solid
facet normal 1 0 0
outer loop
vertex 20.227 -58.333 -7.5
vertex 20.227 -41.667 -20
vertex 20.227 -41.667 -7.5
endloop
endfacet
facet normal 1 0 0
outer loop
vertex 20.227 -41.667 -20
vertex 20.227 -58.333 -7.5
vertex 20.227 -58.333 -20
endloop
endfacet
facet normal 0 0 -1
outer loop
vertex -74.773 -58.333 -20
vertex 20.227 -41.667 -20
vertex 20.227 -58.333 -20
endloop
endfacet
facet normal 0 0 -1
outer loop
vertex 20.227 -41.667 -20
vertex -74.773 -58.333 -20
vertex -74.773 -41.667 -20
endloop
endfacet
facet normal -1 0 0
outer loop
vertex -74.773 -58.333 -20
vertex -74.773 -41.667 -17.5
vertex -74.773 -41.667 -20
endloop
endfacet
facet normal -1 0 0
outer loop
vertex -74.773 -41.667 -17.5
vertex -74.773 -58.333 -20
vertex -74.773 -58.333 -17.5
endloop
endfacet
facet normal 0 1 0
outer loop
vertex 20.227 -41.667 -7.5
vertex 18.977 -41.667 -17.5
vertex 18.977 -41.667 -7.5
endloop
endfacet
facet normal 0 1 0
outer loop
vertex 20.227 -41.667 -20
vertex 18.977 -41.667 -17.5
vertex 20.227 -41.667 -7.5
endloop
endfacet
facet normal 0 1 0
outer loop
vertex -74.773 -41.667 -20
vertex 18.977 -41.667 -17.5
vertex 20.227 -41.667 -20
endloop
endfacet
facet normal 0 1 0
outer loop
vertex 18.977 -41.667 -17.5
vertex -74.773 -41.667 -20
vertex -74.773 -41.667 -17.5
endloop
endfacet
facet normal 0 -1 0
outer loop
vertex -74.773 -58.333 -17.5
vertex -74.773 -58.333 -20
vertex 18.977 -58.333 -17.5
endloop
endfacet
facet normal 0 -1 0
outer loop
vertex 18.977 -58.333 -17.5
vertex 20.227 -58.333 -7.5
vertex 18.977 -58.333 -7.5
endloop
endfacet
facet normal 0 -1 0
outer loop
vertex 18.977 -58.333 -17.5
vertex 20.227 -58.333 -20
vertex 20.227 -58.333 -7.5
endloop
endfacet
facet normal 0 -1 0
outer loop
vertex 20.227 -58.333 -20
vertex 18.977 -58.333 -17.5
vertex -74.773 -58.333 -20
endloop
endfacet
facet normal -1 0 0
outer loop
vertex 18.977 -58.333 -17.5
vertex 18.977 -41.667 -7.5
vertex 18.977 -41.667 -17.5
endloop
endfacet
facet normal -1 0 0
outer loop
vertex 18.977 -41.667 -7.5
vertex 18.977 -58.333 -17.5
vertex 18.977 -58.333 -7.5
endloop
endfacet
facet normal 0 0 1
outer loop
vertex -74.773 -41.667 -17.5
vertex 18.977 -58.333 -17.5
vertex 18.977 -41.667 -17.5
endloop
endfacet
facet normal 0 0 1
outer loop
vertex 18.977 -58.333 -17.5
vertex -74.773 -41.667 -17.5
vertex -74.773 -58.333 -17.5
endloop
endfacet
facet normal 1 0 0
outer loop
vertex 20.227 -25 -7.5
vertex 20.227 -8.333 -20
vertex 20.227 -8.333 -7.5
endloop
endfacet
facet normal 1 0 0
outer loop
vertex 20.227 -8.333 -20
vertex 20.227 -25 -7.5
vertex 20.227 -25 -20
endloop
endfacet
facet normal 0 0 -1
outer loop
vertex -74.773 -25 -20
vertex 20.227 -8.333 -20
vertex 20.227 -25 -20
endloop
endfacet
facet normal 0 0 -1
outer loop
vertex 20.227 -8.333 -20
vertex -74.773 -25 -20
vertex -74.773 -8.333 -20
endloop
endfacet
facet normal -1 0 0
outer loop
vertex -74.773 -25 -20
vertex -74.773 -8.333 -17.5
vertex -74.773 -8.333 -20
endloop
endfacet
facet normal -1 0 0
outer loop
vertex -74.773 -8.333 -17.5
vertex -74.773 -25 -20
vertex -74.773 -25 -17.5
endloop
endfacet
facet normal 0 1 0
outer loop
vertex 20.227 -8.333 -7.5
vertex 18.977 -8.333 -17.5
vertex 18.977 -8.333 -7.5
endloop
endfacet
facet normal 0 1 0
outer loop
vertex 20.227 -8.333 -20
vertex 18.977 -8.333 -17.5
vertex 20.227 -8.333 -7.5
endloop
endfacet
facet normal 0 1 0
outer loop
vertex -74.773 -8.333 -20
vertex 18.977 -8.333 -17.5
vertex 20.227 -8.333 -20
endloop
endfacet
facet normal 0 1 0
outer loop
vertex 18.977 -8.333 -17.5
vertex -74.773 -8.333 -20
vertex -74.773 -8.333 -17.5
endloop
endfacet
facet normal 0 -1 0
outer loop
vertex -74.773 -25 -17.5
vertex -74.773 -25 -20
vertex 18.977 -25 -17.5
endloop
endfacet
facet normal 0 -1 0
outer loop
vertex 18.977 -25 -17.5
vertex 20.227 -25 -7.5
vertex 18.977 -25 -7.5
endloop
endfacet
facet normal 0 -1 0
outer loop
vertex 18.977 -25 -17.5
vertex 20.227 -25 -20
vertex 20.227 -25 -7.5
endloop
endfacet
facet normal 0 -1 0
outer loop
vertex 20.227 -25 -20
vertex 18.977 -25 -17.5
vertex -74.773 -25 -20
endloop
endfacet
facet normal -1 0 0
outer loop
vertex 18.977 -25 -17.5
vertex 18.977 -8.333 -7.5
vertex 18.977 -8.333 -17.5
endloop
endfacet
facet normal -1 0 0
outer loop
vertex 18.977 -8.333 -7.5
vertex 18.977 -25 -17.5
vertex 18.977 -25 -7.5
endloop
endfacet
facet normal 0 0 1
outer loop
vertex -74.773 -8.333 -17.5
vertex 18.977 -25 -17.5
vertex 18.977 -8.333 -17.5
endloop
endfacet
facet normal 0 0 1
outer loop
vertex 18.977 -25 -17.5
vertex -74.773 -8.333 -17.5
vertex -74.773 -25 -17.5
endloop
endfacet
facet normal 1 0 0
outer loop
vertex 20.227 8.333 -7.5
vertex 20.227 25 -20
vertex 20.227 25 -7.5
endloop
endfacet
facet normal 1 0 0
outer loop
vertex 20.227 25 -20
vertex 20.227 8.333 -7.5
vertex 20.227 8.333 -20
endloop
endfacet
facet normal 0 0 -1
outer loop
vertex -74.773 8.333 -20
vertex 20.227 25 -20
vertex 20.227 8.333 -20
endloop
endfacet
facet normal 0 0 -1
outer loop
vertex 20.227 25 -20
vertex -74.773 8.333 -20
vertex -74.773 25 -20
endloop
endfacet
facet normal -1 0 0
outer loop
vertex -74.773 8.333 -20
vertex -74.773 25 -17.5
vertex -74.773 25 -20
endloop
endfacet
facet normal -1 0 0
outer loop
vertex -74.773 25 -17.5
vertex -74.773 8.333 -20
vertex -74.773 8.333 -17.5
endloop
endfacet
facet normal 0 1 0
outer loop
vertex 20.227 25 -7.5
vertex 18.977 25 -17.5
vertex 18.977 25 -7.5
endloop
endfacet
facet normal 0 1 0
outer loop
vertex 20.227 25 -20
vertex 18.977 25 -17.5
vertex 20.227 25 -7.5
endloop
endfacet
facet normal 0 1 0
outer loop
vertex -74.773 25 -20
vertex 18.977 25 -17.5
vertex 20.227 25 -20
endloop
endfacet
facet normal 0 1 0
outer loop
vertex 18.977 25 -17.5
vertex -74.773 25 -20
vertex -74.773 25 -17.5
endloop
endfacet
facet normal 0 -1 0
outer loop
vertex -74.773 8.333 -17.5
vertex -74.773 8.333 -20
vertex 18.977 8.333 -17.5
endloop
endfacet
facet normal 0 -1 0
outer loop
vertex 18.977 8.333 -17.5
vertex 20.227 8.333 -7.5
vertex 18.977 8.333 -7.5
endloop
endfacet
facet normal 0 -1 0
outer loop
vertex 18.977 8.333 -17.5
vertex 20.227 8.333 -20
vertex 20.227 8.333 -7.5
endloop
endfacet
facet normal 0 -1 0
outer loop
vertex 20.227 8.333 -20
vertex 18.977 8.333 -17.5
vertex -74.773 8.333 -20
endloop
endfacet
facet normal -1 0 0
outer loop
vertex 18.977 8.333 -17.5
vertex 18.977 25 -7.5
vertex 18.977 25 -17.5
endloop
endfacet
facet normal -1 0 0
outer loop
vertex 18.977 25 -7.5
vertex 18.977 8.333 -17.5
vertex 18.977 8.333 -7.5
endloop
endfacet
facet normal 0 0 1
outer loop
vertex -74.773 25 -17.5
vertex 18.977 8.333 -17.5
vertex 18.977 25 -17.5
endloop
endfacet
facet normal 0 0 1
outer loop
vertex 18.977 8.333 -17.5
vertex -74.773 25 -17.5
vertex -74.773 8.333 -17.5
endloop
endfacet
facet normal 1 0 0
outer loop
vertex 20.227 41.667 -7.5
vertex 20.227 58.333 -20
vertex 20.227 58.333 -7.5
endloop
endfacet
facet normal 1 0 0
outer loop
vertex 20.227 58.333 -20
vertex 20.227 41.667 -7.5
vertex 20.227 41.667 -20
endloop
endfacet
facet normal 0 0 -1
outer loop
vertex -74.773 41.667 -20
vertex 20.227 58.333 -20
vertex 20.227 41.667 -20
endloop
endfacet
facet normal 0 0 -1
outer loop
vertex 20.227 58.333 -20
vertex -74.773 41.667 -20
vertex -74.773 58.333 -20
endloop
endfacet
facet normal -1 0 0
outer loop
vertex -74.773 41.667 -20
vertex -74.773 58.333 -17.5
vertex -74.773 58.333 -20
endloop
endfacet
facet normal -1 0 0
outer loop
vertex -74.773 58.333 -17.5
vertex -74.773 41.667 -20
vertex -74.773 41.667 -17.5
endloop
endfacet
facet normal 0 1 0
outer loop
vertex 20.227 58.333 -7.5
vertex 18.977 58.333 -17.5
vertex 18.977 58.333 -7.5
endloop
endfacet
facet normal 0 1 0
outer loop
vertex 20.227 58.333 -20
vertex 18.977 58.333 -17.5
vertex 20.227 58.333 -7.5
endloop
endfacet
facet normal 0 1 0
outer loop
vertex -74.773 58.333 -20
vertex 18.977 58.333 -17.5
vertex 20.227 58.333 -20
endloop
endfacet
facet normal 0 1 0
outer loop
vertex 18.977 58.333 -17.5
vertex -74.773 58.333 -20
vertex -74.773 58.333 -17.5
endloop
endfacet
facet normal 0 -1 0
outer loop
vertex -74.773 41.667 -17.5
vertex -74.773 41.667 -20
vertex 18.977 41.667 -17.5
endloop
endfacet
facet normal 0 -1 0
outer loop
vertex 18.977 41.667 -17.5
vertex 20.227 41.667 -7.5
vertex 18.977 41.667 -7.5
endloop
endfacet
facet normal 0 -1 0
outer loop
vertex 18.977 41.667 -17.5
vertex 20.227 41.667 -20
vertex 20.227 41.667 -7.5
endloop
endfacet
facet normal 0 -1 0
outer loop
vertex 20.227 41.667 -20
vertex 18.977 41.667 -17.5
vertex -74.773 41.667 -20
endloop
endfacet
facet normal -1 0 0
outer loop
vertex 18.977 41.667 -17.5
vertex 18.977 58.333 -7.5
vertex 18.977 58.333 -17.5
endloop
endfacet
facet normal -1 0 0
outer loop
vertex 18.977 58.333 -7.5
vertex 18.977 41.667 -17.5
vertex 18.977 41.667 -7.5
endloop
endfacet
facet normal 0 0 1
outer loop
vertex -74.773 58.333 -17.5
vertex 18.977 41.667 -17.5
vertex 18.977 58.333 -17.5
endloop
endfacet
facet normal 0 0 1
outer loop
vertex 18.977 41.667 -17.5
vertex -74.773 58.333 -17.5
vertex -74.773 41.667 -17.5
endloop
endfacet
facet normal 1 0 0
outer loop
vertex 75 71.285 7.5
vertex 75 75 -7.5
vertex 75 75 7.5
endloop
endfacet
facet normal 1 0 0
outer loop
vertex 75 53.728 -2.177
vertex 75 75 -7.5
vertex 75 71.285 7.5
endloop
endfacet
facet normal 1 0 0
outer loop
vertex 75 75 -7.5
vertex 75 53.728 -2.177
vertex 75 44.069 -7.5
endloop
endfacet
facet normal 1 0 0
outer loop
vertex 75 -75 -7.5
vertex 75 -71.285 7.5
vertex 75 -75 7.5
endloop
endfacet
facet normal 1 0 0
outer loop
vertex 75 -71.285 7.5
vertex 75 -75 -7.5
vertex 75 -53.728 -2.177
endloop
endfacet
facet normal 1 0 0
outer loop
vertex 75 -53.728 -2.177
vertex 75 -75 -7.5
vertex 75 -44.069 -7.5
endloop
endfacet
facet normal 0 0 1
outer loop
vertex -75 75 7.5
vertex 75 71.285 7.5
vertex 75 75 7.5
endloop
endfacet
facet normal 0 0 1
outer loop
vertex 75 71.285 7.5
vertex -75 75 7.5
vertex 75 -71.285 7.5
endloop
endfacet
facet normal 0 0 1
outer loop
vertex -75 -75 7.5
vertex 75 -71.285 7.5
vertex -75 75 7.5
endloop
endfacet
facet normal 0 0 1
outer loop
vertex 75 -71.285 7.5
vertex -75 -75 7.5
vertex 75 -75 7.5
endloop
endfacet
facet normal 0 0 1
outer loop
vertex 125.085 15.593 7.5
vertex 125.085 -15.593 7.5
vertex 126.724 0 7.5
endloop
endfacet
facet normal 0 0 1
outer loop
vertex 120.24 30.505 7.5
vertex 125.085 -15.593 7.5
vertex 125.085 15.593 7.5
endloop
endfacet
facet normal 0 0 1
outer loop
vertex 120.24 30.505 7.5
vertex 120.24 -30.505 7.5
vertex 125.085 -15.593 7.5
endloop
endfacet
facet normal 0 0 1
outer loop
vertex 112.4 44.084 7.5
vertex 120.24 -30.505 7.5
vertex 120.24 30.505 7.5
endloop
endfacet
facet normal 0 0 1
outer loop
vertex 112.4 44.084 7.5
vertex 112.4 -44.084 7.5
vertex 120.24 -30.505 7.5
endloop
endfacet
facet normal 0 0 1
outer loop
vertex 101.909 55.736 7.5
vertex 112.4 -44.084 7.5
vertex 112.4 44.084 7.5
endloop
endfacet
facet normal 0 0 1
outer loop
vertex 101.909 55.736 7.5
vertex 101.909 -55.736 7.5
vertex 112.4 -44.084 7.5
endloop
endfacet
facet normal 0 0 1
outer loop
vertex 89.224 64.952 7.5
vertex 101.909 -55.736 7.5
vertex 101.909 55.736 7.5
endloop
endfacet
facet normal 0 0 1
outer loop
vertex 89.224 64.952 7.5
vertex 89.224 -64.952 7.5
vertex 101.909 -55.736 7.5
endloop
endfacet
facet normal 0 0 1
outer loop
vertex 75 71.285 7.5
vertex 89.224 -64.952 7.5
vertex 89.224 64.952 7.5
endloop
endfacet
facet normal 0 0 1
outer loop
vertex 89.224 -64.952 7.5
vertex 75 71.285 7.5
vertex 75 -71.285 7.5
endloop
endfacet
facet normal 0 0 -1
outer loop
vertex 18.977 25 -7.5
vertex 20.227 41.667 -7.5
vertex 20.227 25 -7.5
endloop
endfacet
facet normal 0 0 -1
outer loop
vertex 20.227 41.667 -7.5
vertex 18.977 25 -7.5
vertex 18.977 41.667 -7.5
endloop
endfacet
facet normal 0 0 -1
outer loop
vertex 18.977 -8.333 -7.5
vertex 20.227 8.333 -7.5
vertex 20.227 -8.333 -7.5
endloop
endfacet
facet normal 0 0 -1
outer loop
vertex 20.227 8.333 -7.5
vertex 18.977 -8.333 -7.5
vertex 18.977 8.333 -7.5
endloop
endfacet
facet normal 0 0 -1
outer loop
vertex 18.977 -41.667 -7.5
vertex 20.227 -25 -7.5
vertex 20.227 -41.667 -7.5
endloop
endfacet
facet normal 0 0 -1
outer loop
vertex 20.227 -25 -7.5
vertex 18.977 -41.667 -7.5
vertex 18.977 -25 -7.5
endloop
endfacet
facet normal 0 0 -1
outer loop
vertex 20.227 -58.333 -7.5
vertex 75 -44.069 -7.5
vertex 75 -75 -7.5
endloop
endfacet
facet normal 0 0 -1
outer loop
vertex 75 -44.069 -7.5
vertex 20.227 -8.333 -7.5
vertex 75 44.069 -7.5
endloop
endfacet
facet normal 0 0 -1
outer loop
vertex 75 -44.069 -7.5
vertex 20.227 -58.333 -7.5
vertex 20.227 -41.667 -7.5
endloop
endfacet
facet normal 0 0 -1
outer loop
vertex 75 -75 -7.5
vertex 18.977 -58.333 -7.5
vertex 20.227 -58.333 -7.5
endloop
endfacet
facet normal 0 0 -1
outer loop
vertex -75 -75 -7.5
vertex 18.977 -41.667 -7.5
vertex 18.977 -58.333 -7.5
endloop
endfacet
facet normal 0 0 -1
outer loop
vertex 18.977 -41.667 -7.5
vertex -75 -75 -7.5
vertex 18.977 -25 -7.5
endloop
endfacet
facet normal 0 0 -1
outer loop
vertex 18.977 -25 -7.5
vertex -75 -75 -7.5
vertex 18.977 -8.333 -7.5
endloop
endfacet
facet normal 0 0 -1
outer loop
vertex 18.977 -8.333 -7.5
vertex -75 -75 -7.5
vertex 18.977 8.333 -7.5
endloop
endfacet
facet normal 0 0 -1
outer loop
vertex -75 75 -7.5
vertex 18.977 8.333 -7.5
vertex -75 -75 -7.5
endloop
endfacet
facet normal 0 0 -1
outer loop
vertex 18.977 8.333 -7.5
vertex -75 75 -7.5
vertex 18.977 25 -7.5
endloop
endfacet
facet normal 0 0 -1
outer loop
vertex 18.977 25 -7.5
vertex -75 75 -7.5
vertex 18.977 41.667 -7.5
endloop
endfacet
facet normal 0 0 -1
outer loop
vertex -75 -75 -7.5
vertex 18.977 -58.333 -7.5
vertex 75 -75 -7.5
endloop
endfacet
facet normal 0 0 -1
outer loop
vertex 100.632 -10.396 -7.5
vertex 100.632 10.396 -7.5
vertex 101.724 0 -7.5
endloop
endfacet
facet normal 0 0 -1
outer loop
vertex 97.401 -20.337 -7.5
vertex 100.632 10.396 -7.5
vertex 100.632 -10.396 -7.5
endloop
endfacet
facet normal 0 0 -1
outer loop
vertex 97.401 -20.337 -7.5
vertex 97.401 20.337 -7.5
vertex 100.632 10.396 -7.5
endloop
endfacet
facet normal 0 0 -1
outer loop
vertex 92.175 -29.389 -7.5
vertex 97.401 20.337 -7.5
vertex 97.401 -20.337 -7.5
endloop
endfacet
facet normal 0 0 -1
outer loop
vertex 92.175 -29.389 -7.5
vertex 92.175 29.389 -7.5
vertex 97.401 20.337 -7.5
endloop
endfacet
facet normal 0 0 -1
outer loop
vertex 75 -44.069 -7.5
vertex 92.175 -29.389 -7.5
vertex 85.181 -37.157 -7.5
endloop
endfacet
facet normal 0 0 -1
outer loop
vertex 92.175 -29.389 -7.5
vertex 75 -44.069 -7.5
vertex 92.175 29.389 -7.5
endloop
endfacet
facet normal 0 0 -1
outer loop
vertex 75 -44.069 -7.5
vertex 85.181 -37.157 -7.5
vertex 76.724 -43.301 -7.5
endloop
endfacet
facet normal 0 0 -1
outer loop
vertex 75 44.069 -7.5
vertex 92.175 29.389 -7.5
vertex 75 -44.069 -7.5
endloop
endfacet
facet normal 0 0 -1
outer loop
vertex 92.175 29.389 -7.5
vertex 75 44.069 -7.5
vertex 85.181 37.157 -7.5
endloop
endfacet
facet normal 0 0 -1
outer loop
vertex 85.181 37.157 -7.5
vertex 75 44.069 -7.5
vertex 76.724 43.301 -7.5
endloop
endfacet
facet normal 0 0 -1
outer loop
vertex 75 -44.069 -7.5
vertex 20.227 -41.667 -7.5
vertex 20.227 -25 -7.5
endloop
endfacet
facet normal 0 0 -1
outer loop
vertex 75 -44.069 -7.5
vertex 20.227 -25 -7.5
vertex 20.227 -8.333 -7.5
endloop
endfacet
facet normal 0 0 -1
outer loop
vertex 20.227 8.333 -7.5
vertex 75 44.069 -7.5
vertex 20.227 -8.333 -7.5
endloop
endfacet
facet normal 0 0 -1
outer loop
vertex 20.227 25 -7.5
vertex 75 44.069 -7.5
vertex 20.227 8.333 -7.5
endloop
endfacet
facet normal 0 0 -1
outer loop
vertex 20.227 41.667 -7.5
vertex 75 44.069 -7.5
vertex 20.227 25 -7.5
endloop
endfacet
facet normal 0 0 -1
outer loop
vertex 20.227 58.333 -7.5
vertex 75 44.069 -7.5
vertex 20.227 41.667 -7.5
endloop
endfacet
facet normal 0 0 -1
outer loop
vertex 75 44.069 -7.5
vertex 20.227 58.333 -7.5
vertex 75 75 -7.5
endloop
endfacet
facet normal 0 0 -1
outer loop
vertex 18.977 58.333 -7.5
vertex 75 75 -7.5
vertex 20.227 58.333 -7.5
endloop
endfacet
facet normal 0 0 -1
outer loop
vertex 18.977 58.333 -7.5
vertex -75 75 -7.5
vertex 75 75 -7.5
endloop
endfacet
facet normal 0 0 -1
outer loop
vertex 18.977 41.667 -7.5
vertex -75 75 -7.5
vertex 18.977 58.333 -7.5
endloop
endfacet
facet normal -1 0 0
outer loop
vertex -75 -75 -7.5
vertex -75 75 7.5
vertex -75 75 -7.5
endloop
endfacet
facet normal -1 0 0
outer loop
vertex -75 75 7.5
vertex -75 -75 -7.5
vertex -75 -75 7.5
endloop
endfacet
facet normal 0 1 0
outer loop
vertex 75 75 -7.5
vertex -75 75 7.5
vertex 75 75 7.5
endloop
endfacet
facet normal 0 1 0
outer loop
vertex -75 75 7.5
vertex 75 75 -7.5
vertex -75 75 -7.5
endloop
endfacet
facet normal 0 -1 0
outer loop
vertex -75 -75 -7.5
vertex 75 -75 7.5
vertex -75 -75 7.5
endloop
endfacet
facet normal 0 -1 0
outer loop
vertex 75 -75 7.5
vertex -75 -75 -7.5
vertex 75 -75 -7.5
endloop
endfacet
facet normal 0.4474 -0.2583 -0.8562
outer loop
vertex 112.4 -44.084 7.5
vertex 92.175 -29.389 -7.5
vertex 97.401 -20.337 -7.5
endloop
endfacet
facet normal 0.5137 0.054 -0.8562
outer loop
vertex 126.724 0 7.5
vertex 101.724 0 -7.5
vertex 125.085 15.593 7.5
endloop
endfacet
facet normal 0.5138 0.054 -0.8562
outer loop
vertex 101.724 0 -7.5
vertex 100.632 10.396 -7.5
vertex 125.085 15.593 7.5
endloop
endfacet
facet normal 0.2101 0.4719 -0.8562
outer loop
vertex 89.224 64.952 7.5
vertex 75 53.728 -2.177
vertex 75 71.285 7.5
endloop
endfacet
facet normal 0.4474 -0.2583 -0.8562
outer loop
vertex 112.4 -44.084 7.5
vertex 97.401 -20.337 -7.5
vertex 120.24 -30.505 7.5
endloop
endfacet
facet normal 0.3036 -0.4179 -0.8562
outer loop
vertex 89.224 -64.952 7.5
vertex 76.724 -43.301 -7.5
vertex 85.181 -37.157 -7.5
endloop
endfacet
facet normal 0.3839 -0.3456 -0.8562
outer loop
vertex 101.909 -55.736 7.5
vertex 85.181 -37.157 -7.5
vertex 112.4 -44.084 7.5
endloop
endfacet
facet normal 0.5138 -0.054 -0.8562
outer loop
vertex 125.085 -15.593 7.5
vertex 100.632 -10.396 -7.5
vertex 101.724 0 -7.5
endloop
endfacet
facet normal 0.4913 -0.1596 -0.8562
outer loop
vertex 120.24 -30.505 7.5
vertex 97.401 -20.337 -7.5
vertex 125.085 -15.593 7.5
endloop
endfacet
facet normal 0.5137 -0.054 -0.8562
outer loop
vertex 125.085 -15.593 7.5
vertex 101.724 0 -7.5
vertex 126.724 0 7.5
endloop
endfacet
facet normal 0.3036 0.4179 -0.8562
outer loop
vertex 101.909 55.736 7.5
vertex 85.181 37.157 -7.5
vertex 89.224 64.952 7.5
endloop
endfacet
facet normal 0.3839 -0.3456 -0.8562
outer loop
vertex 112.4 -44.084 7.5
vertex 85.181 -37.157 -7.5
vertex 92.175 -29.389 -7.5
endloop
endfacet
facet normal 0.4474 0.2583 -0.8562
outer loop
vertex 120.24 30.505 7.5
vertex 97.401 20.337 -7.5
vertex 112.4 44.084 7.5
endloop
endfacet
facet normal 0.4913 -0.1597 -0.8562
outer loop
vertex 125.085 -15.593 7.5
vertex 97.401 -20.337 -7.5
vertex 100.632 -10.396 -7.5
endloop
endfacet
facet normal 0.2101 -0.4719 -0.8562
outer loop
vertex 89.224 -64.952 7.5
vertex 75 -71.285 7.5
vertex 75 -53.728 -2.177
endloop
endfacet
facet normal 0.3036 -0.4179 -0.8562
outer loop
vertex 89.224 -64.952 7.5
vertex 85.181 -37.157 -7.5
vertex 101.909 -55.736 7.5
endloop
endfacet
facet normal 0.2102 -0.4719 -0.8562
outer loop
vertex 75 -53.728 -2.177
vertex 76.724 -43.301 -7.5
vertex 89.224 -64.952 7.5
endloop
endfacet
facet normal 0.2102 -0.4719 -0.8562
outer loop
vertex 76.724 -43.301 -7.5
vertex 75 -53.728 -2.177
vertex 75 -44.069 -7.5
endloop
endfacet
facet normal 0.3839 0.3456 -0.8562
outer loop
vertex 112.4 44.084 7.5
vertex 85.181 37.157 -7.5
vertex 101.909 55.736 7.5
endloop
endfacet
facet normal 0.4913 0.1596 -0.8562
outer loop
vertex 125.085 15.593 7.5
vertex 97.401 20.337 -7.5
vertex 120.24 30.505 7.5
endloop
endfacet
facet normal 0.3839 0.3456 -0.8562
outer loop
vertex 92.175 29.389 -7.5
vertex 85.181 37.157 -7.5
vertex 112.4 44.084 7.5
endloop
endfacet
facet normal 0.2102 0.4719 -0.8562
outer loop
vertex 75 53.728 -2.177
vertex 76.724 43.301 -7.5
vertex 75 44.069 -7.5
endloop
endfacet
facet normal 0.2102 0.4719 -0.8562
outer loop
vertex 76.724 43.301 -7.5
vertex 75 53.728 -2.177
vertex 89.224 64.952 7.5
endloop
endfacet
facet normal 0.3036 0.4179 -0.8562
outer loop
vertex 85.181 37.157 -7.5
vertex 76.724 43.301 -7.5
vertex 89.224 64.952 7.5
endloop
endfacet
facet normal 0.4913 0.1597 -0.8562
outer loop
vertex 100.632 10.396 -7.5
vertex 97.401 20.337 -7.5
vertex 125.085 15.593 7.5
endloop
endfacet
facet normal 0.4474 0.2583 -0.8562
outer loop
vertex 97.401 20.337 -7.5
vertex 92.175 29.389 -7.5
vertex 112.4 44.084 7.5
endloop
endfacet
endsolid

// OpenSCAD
epsilon = 0.001;
dehumidifierWidth = 150;
dehumidifierDepth = 150;
shelfThickness = 15;
shelfDepth = 95;
numClips = 4;
clipThickness = 5;

// Calculations
clipWidth = dehumidifierWidth / (numClips * 2 + 1);

union() {
cube([dehumidifierWidth, dehumidifierDepth, shelfThickness], center = true);

translate([dehumidifierDepth / 2.9, 0, 0])
cylinder(shelfThickness, dehumidifierWidth / 3, dehumidifierWidth / 2, center = true);

translate([-dehumidifierDepth / 5.5, -clipWidth * 3, -shelfThickness / 2 - clipThickness / 2])
difference() {
cube([shelfDepth, clipWidth, clipThickness + shelfThickness], center = true);
translate([-clipThickness / 2, 0, 0])
cube([shelfDepth + (clipThickness / 2) , clipWidth + (2 * epsilon), shelfThickness], center = true);
}

translate([-dehumidifierDepth / 5.5, -clipWidth, -shelfThickness / 2 - clipThickness / 2])
difference() {
cube([shelfDepth, clipWidth, clipThickness + shelfThickness], center = true);
translate([-clipThickness / 2, 0, 0])
cube([shelfDepth + (clipThickness / 2) , clipWidth + (2 * epsilon), shelfThickness], center = true);
}

translate([-dehumidifierDepth / 5.5, clipWidth, -shelfThickness / 2 - clipThickness / 2])
difference() {
cube([shelfDepth, clipWidth, clipThickness + shelfThickness], center = true);
translate([-clipThickness / 2, 0, 0])
cube([shelfDepth + (clipThickness / 2) , clipWidth + (2 * epsilon), shelfThickness], center = true);
}

translate([-dehumidifierDepth / 5.5, clipWidth * 3, -shelfThickness / 2 - clipThickness / 2])
difference() {
cube([shelfDepth, clipWidth, clipThickness + shelfThickness], center = true);
translate([-clipThickness / 2, 0, 0])
cube([shelfDepth + (clipThickness / 2) , clipWidth + (2 * epsilon), shelfThickness], center = true);
}
}
